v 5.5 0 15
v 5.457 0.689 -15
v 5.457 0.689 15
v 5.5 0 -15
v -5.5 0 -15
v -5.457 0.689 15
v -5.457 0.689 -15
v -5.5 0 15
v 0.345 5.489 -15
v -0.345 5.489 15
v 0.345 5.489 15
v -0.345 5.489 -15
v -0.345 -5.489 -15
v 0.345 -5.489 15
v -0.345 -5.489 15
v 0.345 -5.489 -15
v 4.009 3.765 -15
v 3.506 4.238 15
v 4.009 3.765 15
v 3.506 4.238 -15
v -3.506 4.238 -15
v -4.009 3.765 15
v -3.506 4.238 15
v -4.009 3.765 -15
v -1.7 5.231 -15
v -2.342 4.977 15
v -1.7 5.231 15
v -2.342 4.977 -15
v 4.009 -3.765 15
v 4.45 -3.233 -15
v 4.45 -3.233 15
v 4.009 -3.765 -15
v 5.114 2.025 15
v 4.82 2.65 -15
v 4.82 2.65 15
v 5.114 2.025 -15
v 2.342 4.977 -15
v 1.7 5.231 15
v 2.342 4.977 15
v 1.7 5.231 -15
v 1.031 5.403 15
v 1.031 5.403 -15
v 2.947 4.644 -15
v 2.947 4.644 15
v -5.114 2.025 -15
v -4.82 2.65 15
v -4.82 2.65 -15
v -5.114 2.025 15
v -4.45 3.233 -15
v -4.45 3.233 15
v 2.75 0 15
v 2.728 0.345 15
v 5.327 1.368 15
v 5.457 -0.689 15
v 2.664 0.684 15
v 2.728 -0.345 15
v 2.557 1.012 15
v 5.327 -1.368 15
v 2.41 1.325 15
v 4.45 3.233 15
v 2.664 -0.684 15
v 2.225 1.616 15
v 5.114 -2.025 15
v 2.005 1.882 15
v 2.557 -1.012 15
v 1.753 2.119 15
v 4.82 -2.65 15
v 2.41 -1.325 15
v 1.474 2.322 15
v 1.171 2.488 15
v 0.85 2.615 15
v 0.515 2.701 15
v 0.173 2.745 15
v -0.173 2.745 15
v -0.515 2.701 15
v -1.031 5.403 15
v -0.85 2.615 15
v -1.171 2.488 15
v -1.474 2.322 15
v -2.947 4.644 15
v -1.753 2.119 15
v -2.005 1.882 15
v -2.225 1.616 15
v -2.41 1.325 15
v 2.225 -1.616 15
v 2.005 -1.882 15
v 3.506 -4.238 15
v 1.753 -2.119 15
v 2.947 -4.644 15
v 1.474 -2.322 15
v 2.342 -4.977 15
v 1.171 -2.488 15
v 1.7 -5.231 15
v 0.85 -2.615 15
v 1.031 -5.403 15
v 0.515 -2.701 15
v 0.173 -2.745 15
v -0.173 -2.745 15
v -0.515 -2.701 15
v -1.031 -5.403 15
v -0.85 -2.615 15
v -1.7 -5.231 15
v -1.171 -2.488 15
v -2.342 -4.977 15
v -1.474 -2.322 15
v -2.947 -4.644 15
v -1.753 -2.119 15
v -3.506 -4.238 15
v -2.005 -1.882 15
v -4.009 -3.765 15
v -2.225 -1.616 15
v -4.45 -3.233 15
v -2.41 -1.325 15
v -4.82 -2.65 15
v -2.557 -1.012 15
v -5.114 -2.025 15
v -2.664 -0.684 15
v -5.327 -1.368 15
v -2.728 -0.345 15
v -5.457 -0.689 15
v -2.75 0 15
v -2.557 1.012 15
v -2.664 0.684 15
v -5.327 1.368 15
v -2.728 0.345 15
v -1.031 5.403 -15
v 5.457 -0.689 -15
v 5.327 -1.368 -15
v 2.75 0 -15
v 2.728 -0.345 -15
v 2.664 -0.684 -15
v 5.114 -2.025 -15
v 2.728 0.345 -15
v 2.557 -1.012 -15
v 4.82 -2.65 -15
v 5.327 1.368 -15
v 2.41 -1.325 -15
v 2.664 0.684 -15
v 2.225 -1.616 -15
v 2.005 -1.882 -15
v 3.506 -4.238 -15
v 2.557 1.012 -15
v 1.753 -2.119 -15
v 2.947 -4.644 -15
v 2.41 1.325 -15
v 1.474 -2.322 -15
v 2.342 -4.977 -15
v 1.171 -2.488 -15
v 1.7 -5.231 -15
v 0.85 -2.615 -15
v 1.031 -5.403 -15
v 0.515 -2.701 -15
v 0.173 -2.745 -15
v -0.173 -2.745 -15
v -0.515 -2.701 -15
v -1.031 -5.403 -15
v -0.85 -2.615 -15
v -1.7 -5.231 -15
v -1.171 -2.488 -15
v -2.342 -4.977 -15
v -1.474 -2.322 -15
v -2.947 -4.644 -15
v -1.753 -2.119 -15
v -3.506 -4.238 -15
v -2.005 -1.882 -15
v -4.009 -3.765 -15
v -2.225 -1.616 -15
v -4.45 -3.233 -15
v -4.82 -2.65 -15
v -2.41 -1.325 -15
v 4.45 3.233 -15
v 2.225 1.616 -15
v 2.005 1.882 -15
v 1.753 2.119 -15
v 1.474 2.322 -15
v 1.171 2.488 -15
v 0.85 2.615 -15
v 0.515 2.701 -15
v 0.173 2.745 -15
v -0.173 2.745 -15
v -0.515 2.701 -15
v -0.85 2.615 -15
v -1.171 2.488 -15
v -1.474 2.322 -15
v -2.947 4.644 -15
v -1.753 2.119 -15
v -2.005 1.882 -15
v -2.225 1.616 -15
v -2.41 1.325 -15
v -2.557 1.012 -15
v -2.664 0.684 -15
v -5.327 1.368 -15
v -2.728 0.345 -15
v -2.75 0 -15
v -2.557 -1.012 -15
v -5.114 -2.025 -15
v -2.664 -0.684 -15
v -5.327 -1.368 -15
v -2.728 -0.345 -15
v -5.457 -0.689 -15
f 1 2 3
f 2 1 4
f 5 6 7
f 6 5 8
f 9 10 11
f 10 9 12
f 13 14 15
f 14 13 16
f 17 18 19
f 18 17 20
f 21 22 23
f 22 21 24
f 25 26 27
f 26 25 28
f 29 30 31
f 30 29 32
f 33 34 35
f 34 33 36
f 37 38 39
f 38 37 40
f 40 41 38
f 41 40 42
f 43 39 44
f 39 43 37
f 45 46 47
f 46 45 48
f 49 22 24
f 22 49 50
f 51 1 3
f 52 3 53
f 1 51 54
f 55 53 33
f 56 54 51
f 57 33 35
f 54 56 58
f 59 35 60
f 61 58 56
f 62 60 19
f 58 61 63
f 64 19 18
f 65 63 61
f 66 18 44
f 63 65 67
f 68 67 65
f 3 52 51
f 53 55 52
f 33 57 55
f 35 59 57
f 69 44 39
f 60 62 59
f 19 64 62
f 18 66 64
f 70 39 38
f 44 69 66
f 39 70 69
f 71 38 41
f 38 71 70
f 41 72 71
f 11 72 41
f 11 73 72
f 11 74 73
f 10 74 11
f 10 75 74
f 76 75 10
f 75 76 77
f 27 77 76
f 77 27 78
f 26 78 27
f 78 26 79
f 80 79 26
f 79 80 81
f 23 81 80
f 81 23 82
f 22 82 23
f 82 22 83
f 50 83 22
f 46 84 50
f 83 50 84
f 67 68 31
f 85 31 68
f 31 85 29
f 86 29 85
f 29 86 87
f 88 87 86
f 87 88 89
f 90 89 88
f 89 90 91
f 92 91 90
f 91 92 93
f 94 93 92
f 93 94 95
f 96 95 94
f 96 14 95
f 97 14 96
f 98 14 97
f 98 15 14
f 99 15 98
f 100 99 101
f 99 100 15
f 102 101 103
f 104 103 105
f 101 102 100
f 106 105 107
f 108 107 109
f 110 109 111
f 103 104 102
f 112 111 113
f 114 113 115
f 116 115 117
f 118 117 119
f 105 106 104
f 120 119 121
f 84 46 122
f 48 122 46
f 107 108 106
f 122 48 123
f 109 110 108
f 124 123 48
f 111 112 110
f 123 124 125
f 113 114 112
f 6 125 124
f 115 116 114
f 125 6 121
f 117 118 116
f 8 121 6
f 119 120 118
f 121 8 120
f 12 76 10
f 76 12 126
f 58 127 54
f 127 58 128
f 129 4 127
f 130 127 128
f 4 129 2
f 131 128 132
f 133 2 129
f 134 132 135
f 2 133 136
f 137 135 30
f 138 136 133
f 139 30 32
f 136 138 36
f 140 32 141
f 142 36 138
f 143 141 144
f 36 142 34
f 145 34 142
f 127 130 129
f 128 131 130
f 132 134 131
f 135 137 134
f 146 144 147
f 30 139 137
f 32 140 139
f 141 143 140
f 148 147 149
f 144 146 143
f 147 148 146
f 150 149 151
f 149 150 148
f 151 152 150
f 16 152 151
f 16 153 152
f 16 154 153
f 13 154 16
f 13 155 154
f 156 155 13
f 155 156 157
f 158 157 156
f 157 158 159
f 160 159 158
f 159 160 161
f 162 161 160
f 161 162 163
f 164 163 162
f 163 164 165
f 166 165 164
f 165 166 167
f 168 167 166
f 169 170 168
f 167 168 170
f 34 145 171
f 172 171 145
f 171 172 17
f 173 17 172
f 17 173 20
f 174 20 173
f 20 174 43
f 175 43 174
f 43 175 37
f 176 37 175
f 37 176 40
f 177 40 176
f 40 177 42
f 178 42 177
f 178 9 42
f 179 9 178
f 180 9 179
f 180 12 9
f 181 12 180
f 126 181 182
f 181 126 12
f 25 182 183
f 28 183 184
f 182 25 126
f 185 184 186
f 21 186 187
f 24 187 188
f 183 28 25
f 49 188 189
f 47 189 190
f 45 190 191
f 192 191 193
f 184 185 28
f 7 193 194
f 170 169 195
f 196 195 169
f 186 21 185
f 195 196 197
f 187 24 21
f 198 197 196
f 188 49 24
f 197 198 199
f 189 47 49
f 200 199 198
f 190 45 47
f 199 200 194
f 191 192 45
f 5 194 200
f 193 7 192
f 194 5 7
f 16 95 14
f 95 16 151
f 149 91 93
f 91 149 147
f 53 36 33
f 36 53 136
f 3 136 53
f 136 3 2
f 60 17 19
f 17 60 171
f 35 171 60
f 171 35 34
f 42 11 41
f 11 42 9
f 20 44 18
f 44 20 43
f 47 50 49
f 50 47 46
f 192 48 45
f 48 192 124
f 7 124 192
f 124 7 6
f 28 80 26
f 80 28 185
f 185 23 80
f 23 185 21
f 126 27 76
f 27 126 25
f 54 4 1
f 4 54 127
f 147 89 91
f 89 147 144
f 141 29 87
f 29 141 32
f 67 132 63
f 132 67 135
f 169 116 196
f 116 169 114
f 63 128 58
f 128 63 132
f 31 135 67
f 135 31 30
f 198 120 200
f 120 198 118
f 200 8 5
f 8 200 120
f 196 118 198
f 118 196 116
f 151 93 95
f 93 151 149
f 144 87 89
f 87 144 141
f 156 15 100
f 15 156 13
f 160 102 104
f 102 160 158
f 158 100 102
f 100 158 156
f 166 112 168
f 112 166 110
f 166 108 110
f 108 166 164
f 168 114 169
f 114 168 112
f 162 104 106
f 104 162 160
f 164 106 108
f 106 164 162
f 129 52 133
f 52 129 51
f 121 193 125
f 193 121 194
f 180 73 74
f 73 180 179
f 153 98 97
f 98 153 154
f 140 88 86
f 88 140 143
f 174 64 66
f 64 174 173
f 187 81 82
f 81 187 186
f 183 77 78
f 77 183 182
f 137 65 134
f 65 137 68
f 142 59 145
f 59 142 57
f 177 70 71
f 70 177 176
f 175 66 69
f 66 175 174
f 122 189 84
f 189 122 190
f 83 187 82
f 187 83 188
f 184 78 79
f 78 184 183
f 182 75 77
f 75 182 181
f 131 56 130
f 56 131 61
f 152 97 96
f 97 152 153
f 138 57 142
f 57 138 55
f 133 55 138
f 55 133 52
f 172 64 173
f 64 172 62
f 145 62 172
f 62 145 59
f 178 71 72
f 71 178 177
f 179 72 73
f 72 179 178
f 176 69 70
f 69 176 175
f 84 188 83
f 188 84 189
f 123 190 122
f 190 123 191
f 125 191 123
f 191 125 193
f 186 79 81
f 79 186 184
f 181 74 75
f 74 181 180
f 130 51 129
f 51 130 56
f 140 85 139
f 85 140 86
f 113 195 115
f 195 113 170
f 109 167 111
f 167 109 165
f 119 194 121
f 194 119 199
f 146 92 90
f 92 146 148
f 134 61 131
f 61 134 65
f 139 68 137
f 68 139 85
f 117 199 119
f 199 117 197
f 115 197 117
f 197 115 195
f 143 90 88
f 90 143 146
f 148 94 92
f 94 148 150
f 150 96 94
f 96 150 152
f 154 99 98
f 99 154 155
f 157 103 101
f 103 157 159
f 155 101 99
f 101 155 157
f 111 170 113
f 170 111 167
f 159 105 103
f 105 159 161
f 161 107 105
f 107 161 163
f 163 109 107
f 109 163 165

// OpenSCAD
$fn = 50;


difference() {
	union() {
		translate(v = [0, 0, -15.0000000000]) {
			cylinder(h = 30, r = 5.5000000000);
		}
	}
	union() {
		translate(v = [0, 0, -100.0000000000]) {
			cylinder(h = 200, r = 2.7500000000);
		}
	}
}
